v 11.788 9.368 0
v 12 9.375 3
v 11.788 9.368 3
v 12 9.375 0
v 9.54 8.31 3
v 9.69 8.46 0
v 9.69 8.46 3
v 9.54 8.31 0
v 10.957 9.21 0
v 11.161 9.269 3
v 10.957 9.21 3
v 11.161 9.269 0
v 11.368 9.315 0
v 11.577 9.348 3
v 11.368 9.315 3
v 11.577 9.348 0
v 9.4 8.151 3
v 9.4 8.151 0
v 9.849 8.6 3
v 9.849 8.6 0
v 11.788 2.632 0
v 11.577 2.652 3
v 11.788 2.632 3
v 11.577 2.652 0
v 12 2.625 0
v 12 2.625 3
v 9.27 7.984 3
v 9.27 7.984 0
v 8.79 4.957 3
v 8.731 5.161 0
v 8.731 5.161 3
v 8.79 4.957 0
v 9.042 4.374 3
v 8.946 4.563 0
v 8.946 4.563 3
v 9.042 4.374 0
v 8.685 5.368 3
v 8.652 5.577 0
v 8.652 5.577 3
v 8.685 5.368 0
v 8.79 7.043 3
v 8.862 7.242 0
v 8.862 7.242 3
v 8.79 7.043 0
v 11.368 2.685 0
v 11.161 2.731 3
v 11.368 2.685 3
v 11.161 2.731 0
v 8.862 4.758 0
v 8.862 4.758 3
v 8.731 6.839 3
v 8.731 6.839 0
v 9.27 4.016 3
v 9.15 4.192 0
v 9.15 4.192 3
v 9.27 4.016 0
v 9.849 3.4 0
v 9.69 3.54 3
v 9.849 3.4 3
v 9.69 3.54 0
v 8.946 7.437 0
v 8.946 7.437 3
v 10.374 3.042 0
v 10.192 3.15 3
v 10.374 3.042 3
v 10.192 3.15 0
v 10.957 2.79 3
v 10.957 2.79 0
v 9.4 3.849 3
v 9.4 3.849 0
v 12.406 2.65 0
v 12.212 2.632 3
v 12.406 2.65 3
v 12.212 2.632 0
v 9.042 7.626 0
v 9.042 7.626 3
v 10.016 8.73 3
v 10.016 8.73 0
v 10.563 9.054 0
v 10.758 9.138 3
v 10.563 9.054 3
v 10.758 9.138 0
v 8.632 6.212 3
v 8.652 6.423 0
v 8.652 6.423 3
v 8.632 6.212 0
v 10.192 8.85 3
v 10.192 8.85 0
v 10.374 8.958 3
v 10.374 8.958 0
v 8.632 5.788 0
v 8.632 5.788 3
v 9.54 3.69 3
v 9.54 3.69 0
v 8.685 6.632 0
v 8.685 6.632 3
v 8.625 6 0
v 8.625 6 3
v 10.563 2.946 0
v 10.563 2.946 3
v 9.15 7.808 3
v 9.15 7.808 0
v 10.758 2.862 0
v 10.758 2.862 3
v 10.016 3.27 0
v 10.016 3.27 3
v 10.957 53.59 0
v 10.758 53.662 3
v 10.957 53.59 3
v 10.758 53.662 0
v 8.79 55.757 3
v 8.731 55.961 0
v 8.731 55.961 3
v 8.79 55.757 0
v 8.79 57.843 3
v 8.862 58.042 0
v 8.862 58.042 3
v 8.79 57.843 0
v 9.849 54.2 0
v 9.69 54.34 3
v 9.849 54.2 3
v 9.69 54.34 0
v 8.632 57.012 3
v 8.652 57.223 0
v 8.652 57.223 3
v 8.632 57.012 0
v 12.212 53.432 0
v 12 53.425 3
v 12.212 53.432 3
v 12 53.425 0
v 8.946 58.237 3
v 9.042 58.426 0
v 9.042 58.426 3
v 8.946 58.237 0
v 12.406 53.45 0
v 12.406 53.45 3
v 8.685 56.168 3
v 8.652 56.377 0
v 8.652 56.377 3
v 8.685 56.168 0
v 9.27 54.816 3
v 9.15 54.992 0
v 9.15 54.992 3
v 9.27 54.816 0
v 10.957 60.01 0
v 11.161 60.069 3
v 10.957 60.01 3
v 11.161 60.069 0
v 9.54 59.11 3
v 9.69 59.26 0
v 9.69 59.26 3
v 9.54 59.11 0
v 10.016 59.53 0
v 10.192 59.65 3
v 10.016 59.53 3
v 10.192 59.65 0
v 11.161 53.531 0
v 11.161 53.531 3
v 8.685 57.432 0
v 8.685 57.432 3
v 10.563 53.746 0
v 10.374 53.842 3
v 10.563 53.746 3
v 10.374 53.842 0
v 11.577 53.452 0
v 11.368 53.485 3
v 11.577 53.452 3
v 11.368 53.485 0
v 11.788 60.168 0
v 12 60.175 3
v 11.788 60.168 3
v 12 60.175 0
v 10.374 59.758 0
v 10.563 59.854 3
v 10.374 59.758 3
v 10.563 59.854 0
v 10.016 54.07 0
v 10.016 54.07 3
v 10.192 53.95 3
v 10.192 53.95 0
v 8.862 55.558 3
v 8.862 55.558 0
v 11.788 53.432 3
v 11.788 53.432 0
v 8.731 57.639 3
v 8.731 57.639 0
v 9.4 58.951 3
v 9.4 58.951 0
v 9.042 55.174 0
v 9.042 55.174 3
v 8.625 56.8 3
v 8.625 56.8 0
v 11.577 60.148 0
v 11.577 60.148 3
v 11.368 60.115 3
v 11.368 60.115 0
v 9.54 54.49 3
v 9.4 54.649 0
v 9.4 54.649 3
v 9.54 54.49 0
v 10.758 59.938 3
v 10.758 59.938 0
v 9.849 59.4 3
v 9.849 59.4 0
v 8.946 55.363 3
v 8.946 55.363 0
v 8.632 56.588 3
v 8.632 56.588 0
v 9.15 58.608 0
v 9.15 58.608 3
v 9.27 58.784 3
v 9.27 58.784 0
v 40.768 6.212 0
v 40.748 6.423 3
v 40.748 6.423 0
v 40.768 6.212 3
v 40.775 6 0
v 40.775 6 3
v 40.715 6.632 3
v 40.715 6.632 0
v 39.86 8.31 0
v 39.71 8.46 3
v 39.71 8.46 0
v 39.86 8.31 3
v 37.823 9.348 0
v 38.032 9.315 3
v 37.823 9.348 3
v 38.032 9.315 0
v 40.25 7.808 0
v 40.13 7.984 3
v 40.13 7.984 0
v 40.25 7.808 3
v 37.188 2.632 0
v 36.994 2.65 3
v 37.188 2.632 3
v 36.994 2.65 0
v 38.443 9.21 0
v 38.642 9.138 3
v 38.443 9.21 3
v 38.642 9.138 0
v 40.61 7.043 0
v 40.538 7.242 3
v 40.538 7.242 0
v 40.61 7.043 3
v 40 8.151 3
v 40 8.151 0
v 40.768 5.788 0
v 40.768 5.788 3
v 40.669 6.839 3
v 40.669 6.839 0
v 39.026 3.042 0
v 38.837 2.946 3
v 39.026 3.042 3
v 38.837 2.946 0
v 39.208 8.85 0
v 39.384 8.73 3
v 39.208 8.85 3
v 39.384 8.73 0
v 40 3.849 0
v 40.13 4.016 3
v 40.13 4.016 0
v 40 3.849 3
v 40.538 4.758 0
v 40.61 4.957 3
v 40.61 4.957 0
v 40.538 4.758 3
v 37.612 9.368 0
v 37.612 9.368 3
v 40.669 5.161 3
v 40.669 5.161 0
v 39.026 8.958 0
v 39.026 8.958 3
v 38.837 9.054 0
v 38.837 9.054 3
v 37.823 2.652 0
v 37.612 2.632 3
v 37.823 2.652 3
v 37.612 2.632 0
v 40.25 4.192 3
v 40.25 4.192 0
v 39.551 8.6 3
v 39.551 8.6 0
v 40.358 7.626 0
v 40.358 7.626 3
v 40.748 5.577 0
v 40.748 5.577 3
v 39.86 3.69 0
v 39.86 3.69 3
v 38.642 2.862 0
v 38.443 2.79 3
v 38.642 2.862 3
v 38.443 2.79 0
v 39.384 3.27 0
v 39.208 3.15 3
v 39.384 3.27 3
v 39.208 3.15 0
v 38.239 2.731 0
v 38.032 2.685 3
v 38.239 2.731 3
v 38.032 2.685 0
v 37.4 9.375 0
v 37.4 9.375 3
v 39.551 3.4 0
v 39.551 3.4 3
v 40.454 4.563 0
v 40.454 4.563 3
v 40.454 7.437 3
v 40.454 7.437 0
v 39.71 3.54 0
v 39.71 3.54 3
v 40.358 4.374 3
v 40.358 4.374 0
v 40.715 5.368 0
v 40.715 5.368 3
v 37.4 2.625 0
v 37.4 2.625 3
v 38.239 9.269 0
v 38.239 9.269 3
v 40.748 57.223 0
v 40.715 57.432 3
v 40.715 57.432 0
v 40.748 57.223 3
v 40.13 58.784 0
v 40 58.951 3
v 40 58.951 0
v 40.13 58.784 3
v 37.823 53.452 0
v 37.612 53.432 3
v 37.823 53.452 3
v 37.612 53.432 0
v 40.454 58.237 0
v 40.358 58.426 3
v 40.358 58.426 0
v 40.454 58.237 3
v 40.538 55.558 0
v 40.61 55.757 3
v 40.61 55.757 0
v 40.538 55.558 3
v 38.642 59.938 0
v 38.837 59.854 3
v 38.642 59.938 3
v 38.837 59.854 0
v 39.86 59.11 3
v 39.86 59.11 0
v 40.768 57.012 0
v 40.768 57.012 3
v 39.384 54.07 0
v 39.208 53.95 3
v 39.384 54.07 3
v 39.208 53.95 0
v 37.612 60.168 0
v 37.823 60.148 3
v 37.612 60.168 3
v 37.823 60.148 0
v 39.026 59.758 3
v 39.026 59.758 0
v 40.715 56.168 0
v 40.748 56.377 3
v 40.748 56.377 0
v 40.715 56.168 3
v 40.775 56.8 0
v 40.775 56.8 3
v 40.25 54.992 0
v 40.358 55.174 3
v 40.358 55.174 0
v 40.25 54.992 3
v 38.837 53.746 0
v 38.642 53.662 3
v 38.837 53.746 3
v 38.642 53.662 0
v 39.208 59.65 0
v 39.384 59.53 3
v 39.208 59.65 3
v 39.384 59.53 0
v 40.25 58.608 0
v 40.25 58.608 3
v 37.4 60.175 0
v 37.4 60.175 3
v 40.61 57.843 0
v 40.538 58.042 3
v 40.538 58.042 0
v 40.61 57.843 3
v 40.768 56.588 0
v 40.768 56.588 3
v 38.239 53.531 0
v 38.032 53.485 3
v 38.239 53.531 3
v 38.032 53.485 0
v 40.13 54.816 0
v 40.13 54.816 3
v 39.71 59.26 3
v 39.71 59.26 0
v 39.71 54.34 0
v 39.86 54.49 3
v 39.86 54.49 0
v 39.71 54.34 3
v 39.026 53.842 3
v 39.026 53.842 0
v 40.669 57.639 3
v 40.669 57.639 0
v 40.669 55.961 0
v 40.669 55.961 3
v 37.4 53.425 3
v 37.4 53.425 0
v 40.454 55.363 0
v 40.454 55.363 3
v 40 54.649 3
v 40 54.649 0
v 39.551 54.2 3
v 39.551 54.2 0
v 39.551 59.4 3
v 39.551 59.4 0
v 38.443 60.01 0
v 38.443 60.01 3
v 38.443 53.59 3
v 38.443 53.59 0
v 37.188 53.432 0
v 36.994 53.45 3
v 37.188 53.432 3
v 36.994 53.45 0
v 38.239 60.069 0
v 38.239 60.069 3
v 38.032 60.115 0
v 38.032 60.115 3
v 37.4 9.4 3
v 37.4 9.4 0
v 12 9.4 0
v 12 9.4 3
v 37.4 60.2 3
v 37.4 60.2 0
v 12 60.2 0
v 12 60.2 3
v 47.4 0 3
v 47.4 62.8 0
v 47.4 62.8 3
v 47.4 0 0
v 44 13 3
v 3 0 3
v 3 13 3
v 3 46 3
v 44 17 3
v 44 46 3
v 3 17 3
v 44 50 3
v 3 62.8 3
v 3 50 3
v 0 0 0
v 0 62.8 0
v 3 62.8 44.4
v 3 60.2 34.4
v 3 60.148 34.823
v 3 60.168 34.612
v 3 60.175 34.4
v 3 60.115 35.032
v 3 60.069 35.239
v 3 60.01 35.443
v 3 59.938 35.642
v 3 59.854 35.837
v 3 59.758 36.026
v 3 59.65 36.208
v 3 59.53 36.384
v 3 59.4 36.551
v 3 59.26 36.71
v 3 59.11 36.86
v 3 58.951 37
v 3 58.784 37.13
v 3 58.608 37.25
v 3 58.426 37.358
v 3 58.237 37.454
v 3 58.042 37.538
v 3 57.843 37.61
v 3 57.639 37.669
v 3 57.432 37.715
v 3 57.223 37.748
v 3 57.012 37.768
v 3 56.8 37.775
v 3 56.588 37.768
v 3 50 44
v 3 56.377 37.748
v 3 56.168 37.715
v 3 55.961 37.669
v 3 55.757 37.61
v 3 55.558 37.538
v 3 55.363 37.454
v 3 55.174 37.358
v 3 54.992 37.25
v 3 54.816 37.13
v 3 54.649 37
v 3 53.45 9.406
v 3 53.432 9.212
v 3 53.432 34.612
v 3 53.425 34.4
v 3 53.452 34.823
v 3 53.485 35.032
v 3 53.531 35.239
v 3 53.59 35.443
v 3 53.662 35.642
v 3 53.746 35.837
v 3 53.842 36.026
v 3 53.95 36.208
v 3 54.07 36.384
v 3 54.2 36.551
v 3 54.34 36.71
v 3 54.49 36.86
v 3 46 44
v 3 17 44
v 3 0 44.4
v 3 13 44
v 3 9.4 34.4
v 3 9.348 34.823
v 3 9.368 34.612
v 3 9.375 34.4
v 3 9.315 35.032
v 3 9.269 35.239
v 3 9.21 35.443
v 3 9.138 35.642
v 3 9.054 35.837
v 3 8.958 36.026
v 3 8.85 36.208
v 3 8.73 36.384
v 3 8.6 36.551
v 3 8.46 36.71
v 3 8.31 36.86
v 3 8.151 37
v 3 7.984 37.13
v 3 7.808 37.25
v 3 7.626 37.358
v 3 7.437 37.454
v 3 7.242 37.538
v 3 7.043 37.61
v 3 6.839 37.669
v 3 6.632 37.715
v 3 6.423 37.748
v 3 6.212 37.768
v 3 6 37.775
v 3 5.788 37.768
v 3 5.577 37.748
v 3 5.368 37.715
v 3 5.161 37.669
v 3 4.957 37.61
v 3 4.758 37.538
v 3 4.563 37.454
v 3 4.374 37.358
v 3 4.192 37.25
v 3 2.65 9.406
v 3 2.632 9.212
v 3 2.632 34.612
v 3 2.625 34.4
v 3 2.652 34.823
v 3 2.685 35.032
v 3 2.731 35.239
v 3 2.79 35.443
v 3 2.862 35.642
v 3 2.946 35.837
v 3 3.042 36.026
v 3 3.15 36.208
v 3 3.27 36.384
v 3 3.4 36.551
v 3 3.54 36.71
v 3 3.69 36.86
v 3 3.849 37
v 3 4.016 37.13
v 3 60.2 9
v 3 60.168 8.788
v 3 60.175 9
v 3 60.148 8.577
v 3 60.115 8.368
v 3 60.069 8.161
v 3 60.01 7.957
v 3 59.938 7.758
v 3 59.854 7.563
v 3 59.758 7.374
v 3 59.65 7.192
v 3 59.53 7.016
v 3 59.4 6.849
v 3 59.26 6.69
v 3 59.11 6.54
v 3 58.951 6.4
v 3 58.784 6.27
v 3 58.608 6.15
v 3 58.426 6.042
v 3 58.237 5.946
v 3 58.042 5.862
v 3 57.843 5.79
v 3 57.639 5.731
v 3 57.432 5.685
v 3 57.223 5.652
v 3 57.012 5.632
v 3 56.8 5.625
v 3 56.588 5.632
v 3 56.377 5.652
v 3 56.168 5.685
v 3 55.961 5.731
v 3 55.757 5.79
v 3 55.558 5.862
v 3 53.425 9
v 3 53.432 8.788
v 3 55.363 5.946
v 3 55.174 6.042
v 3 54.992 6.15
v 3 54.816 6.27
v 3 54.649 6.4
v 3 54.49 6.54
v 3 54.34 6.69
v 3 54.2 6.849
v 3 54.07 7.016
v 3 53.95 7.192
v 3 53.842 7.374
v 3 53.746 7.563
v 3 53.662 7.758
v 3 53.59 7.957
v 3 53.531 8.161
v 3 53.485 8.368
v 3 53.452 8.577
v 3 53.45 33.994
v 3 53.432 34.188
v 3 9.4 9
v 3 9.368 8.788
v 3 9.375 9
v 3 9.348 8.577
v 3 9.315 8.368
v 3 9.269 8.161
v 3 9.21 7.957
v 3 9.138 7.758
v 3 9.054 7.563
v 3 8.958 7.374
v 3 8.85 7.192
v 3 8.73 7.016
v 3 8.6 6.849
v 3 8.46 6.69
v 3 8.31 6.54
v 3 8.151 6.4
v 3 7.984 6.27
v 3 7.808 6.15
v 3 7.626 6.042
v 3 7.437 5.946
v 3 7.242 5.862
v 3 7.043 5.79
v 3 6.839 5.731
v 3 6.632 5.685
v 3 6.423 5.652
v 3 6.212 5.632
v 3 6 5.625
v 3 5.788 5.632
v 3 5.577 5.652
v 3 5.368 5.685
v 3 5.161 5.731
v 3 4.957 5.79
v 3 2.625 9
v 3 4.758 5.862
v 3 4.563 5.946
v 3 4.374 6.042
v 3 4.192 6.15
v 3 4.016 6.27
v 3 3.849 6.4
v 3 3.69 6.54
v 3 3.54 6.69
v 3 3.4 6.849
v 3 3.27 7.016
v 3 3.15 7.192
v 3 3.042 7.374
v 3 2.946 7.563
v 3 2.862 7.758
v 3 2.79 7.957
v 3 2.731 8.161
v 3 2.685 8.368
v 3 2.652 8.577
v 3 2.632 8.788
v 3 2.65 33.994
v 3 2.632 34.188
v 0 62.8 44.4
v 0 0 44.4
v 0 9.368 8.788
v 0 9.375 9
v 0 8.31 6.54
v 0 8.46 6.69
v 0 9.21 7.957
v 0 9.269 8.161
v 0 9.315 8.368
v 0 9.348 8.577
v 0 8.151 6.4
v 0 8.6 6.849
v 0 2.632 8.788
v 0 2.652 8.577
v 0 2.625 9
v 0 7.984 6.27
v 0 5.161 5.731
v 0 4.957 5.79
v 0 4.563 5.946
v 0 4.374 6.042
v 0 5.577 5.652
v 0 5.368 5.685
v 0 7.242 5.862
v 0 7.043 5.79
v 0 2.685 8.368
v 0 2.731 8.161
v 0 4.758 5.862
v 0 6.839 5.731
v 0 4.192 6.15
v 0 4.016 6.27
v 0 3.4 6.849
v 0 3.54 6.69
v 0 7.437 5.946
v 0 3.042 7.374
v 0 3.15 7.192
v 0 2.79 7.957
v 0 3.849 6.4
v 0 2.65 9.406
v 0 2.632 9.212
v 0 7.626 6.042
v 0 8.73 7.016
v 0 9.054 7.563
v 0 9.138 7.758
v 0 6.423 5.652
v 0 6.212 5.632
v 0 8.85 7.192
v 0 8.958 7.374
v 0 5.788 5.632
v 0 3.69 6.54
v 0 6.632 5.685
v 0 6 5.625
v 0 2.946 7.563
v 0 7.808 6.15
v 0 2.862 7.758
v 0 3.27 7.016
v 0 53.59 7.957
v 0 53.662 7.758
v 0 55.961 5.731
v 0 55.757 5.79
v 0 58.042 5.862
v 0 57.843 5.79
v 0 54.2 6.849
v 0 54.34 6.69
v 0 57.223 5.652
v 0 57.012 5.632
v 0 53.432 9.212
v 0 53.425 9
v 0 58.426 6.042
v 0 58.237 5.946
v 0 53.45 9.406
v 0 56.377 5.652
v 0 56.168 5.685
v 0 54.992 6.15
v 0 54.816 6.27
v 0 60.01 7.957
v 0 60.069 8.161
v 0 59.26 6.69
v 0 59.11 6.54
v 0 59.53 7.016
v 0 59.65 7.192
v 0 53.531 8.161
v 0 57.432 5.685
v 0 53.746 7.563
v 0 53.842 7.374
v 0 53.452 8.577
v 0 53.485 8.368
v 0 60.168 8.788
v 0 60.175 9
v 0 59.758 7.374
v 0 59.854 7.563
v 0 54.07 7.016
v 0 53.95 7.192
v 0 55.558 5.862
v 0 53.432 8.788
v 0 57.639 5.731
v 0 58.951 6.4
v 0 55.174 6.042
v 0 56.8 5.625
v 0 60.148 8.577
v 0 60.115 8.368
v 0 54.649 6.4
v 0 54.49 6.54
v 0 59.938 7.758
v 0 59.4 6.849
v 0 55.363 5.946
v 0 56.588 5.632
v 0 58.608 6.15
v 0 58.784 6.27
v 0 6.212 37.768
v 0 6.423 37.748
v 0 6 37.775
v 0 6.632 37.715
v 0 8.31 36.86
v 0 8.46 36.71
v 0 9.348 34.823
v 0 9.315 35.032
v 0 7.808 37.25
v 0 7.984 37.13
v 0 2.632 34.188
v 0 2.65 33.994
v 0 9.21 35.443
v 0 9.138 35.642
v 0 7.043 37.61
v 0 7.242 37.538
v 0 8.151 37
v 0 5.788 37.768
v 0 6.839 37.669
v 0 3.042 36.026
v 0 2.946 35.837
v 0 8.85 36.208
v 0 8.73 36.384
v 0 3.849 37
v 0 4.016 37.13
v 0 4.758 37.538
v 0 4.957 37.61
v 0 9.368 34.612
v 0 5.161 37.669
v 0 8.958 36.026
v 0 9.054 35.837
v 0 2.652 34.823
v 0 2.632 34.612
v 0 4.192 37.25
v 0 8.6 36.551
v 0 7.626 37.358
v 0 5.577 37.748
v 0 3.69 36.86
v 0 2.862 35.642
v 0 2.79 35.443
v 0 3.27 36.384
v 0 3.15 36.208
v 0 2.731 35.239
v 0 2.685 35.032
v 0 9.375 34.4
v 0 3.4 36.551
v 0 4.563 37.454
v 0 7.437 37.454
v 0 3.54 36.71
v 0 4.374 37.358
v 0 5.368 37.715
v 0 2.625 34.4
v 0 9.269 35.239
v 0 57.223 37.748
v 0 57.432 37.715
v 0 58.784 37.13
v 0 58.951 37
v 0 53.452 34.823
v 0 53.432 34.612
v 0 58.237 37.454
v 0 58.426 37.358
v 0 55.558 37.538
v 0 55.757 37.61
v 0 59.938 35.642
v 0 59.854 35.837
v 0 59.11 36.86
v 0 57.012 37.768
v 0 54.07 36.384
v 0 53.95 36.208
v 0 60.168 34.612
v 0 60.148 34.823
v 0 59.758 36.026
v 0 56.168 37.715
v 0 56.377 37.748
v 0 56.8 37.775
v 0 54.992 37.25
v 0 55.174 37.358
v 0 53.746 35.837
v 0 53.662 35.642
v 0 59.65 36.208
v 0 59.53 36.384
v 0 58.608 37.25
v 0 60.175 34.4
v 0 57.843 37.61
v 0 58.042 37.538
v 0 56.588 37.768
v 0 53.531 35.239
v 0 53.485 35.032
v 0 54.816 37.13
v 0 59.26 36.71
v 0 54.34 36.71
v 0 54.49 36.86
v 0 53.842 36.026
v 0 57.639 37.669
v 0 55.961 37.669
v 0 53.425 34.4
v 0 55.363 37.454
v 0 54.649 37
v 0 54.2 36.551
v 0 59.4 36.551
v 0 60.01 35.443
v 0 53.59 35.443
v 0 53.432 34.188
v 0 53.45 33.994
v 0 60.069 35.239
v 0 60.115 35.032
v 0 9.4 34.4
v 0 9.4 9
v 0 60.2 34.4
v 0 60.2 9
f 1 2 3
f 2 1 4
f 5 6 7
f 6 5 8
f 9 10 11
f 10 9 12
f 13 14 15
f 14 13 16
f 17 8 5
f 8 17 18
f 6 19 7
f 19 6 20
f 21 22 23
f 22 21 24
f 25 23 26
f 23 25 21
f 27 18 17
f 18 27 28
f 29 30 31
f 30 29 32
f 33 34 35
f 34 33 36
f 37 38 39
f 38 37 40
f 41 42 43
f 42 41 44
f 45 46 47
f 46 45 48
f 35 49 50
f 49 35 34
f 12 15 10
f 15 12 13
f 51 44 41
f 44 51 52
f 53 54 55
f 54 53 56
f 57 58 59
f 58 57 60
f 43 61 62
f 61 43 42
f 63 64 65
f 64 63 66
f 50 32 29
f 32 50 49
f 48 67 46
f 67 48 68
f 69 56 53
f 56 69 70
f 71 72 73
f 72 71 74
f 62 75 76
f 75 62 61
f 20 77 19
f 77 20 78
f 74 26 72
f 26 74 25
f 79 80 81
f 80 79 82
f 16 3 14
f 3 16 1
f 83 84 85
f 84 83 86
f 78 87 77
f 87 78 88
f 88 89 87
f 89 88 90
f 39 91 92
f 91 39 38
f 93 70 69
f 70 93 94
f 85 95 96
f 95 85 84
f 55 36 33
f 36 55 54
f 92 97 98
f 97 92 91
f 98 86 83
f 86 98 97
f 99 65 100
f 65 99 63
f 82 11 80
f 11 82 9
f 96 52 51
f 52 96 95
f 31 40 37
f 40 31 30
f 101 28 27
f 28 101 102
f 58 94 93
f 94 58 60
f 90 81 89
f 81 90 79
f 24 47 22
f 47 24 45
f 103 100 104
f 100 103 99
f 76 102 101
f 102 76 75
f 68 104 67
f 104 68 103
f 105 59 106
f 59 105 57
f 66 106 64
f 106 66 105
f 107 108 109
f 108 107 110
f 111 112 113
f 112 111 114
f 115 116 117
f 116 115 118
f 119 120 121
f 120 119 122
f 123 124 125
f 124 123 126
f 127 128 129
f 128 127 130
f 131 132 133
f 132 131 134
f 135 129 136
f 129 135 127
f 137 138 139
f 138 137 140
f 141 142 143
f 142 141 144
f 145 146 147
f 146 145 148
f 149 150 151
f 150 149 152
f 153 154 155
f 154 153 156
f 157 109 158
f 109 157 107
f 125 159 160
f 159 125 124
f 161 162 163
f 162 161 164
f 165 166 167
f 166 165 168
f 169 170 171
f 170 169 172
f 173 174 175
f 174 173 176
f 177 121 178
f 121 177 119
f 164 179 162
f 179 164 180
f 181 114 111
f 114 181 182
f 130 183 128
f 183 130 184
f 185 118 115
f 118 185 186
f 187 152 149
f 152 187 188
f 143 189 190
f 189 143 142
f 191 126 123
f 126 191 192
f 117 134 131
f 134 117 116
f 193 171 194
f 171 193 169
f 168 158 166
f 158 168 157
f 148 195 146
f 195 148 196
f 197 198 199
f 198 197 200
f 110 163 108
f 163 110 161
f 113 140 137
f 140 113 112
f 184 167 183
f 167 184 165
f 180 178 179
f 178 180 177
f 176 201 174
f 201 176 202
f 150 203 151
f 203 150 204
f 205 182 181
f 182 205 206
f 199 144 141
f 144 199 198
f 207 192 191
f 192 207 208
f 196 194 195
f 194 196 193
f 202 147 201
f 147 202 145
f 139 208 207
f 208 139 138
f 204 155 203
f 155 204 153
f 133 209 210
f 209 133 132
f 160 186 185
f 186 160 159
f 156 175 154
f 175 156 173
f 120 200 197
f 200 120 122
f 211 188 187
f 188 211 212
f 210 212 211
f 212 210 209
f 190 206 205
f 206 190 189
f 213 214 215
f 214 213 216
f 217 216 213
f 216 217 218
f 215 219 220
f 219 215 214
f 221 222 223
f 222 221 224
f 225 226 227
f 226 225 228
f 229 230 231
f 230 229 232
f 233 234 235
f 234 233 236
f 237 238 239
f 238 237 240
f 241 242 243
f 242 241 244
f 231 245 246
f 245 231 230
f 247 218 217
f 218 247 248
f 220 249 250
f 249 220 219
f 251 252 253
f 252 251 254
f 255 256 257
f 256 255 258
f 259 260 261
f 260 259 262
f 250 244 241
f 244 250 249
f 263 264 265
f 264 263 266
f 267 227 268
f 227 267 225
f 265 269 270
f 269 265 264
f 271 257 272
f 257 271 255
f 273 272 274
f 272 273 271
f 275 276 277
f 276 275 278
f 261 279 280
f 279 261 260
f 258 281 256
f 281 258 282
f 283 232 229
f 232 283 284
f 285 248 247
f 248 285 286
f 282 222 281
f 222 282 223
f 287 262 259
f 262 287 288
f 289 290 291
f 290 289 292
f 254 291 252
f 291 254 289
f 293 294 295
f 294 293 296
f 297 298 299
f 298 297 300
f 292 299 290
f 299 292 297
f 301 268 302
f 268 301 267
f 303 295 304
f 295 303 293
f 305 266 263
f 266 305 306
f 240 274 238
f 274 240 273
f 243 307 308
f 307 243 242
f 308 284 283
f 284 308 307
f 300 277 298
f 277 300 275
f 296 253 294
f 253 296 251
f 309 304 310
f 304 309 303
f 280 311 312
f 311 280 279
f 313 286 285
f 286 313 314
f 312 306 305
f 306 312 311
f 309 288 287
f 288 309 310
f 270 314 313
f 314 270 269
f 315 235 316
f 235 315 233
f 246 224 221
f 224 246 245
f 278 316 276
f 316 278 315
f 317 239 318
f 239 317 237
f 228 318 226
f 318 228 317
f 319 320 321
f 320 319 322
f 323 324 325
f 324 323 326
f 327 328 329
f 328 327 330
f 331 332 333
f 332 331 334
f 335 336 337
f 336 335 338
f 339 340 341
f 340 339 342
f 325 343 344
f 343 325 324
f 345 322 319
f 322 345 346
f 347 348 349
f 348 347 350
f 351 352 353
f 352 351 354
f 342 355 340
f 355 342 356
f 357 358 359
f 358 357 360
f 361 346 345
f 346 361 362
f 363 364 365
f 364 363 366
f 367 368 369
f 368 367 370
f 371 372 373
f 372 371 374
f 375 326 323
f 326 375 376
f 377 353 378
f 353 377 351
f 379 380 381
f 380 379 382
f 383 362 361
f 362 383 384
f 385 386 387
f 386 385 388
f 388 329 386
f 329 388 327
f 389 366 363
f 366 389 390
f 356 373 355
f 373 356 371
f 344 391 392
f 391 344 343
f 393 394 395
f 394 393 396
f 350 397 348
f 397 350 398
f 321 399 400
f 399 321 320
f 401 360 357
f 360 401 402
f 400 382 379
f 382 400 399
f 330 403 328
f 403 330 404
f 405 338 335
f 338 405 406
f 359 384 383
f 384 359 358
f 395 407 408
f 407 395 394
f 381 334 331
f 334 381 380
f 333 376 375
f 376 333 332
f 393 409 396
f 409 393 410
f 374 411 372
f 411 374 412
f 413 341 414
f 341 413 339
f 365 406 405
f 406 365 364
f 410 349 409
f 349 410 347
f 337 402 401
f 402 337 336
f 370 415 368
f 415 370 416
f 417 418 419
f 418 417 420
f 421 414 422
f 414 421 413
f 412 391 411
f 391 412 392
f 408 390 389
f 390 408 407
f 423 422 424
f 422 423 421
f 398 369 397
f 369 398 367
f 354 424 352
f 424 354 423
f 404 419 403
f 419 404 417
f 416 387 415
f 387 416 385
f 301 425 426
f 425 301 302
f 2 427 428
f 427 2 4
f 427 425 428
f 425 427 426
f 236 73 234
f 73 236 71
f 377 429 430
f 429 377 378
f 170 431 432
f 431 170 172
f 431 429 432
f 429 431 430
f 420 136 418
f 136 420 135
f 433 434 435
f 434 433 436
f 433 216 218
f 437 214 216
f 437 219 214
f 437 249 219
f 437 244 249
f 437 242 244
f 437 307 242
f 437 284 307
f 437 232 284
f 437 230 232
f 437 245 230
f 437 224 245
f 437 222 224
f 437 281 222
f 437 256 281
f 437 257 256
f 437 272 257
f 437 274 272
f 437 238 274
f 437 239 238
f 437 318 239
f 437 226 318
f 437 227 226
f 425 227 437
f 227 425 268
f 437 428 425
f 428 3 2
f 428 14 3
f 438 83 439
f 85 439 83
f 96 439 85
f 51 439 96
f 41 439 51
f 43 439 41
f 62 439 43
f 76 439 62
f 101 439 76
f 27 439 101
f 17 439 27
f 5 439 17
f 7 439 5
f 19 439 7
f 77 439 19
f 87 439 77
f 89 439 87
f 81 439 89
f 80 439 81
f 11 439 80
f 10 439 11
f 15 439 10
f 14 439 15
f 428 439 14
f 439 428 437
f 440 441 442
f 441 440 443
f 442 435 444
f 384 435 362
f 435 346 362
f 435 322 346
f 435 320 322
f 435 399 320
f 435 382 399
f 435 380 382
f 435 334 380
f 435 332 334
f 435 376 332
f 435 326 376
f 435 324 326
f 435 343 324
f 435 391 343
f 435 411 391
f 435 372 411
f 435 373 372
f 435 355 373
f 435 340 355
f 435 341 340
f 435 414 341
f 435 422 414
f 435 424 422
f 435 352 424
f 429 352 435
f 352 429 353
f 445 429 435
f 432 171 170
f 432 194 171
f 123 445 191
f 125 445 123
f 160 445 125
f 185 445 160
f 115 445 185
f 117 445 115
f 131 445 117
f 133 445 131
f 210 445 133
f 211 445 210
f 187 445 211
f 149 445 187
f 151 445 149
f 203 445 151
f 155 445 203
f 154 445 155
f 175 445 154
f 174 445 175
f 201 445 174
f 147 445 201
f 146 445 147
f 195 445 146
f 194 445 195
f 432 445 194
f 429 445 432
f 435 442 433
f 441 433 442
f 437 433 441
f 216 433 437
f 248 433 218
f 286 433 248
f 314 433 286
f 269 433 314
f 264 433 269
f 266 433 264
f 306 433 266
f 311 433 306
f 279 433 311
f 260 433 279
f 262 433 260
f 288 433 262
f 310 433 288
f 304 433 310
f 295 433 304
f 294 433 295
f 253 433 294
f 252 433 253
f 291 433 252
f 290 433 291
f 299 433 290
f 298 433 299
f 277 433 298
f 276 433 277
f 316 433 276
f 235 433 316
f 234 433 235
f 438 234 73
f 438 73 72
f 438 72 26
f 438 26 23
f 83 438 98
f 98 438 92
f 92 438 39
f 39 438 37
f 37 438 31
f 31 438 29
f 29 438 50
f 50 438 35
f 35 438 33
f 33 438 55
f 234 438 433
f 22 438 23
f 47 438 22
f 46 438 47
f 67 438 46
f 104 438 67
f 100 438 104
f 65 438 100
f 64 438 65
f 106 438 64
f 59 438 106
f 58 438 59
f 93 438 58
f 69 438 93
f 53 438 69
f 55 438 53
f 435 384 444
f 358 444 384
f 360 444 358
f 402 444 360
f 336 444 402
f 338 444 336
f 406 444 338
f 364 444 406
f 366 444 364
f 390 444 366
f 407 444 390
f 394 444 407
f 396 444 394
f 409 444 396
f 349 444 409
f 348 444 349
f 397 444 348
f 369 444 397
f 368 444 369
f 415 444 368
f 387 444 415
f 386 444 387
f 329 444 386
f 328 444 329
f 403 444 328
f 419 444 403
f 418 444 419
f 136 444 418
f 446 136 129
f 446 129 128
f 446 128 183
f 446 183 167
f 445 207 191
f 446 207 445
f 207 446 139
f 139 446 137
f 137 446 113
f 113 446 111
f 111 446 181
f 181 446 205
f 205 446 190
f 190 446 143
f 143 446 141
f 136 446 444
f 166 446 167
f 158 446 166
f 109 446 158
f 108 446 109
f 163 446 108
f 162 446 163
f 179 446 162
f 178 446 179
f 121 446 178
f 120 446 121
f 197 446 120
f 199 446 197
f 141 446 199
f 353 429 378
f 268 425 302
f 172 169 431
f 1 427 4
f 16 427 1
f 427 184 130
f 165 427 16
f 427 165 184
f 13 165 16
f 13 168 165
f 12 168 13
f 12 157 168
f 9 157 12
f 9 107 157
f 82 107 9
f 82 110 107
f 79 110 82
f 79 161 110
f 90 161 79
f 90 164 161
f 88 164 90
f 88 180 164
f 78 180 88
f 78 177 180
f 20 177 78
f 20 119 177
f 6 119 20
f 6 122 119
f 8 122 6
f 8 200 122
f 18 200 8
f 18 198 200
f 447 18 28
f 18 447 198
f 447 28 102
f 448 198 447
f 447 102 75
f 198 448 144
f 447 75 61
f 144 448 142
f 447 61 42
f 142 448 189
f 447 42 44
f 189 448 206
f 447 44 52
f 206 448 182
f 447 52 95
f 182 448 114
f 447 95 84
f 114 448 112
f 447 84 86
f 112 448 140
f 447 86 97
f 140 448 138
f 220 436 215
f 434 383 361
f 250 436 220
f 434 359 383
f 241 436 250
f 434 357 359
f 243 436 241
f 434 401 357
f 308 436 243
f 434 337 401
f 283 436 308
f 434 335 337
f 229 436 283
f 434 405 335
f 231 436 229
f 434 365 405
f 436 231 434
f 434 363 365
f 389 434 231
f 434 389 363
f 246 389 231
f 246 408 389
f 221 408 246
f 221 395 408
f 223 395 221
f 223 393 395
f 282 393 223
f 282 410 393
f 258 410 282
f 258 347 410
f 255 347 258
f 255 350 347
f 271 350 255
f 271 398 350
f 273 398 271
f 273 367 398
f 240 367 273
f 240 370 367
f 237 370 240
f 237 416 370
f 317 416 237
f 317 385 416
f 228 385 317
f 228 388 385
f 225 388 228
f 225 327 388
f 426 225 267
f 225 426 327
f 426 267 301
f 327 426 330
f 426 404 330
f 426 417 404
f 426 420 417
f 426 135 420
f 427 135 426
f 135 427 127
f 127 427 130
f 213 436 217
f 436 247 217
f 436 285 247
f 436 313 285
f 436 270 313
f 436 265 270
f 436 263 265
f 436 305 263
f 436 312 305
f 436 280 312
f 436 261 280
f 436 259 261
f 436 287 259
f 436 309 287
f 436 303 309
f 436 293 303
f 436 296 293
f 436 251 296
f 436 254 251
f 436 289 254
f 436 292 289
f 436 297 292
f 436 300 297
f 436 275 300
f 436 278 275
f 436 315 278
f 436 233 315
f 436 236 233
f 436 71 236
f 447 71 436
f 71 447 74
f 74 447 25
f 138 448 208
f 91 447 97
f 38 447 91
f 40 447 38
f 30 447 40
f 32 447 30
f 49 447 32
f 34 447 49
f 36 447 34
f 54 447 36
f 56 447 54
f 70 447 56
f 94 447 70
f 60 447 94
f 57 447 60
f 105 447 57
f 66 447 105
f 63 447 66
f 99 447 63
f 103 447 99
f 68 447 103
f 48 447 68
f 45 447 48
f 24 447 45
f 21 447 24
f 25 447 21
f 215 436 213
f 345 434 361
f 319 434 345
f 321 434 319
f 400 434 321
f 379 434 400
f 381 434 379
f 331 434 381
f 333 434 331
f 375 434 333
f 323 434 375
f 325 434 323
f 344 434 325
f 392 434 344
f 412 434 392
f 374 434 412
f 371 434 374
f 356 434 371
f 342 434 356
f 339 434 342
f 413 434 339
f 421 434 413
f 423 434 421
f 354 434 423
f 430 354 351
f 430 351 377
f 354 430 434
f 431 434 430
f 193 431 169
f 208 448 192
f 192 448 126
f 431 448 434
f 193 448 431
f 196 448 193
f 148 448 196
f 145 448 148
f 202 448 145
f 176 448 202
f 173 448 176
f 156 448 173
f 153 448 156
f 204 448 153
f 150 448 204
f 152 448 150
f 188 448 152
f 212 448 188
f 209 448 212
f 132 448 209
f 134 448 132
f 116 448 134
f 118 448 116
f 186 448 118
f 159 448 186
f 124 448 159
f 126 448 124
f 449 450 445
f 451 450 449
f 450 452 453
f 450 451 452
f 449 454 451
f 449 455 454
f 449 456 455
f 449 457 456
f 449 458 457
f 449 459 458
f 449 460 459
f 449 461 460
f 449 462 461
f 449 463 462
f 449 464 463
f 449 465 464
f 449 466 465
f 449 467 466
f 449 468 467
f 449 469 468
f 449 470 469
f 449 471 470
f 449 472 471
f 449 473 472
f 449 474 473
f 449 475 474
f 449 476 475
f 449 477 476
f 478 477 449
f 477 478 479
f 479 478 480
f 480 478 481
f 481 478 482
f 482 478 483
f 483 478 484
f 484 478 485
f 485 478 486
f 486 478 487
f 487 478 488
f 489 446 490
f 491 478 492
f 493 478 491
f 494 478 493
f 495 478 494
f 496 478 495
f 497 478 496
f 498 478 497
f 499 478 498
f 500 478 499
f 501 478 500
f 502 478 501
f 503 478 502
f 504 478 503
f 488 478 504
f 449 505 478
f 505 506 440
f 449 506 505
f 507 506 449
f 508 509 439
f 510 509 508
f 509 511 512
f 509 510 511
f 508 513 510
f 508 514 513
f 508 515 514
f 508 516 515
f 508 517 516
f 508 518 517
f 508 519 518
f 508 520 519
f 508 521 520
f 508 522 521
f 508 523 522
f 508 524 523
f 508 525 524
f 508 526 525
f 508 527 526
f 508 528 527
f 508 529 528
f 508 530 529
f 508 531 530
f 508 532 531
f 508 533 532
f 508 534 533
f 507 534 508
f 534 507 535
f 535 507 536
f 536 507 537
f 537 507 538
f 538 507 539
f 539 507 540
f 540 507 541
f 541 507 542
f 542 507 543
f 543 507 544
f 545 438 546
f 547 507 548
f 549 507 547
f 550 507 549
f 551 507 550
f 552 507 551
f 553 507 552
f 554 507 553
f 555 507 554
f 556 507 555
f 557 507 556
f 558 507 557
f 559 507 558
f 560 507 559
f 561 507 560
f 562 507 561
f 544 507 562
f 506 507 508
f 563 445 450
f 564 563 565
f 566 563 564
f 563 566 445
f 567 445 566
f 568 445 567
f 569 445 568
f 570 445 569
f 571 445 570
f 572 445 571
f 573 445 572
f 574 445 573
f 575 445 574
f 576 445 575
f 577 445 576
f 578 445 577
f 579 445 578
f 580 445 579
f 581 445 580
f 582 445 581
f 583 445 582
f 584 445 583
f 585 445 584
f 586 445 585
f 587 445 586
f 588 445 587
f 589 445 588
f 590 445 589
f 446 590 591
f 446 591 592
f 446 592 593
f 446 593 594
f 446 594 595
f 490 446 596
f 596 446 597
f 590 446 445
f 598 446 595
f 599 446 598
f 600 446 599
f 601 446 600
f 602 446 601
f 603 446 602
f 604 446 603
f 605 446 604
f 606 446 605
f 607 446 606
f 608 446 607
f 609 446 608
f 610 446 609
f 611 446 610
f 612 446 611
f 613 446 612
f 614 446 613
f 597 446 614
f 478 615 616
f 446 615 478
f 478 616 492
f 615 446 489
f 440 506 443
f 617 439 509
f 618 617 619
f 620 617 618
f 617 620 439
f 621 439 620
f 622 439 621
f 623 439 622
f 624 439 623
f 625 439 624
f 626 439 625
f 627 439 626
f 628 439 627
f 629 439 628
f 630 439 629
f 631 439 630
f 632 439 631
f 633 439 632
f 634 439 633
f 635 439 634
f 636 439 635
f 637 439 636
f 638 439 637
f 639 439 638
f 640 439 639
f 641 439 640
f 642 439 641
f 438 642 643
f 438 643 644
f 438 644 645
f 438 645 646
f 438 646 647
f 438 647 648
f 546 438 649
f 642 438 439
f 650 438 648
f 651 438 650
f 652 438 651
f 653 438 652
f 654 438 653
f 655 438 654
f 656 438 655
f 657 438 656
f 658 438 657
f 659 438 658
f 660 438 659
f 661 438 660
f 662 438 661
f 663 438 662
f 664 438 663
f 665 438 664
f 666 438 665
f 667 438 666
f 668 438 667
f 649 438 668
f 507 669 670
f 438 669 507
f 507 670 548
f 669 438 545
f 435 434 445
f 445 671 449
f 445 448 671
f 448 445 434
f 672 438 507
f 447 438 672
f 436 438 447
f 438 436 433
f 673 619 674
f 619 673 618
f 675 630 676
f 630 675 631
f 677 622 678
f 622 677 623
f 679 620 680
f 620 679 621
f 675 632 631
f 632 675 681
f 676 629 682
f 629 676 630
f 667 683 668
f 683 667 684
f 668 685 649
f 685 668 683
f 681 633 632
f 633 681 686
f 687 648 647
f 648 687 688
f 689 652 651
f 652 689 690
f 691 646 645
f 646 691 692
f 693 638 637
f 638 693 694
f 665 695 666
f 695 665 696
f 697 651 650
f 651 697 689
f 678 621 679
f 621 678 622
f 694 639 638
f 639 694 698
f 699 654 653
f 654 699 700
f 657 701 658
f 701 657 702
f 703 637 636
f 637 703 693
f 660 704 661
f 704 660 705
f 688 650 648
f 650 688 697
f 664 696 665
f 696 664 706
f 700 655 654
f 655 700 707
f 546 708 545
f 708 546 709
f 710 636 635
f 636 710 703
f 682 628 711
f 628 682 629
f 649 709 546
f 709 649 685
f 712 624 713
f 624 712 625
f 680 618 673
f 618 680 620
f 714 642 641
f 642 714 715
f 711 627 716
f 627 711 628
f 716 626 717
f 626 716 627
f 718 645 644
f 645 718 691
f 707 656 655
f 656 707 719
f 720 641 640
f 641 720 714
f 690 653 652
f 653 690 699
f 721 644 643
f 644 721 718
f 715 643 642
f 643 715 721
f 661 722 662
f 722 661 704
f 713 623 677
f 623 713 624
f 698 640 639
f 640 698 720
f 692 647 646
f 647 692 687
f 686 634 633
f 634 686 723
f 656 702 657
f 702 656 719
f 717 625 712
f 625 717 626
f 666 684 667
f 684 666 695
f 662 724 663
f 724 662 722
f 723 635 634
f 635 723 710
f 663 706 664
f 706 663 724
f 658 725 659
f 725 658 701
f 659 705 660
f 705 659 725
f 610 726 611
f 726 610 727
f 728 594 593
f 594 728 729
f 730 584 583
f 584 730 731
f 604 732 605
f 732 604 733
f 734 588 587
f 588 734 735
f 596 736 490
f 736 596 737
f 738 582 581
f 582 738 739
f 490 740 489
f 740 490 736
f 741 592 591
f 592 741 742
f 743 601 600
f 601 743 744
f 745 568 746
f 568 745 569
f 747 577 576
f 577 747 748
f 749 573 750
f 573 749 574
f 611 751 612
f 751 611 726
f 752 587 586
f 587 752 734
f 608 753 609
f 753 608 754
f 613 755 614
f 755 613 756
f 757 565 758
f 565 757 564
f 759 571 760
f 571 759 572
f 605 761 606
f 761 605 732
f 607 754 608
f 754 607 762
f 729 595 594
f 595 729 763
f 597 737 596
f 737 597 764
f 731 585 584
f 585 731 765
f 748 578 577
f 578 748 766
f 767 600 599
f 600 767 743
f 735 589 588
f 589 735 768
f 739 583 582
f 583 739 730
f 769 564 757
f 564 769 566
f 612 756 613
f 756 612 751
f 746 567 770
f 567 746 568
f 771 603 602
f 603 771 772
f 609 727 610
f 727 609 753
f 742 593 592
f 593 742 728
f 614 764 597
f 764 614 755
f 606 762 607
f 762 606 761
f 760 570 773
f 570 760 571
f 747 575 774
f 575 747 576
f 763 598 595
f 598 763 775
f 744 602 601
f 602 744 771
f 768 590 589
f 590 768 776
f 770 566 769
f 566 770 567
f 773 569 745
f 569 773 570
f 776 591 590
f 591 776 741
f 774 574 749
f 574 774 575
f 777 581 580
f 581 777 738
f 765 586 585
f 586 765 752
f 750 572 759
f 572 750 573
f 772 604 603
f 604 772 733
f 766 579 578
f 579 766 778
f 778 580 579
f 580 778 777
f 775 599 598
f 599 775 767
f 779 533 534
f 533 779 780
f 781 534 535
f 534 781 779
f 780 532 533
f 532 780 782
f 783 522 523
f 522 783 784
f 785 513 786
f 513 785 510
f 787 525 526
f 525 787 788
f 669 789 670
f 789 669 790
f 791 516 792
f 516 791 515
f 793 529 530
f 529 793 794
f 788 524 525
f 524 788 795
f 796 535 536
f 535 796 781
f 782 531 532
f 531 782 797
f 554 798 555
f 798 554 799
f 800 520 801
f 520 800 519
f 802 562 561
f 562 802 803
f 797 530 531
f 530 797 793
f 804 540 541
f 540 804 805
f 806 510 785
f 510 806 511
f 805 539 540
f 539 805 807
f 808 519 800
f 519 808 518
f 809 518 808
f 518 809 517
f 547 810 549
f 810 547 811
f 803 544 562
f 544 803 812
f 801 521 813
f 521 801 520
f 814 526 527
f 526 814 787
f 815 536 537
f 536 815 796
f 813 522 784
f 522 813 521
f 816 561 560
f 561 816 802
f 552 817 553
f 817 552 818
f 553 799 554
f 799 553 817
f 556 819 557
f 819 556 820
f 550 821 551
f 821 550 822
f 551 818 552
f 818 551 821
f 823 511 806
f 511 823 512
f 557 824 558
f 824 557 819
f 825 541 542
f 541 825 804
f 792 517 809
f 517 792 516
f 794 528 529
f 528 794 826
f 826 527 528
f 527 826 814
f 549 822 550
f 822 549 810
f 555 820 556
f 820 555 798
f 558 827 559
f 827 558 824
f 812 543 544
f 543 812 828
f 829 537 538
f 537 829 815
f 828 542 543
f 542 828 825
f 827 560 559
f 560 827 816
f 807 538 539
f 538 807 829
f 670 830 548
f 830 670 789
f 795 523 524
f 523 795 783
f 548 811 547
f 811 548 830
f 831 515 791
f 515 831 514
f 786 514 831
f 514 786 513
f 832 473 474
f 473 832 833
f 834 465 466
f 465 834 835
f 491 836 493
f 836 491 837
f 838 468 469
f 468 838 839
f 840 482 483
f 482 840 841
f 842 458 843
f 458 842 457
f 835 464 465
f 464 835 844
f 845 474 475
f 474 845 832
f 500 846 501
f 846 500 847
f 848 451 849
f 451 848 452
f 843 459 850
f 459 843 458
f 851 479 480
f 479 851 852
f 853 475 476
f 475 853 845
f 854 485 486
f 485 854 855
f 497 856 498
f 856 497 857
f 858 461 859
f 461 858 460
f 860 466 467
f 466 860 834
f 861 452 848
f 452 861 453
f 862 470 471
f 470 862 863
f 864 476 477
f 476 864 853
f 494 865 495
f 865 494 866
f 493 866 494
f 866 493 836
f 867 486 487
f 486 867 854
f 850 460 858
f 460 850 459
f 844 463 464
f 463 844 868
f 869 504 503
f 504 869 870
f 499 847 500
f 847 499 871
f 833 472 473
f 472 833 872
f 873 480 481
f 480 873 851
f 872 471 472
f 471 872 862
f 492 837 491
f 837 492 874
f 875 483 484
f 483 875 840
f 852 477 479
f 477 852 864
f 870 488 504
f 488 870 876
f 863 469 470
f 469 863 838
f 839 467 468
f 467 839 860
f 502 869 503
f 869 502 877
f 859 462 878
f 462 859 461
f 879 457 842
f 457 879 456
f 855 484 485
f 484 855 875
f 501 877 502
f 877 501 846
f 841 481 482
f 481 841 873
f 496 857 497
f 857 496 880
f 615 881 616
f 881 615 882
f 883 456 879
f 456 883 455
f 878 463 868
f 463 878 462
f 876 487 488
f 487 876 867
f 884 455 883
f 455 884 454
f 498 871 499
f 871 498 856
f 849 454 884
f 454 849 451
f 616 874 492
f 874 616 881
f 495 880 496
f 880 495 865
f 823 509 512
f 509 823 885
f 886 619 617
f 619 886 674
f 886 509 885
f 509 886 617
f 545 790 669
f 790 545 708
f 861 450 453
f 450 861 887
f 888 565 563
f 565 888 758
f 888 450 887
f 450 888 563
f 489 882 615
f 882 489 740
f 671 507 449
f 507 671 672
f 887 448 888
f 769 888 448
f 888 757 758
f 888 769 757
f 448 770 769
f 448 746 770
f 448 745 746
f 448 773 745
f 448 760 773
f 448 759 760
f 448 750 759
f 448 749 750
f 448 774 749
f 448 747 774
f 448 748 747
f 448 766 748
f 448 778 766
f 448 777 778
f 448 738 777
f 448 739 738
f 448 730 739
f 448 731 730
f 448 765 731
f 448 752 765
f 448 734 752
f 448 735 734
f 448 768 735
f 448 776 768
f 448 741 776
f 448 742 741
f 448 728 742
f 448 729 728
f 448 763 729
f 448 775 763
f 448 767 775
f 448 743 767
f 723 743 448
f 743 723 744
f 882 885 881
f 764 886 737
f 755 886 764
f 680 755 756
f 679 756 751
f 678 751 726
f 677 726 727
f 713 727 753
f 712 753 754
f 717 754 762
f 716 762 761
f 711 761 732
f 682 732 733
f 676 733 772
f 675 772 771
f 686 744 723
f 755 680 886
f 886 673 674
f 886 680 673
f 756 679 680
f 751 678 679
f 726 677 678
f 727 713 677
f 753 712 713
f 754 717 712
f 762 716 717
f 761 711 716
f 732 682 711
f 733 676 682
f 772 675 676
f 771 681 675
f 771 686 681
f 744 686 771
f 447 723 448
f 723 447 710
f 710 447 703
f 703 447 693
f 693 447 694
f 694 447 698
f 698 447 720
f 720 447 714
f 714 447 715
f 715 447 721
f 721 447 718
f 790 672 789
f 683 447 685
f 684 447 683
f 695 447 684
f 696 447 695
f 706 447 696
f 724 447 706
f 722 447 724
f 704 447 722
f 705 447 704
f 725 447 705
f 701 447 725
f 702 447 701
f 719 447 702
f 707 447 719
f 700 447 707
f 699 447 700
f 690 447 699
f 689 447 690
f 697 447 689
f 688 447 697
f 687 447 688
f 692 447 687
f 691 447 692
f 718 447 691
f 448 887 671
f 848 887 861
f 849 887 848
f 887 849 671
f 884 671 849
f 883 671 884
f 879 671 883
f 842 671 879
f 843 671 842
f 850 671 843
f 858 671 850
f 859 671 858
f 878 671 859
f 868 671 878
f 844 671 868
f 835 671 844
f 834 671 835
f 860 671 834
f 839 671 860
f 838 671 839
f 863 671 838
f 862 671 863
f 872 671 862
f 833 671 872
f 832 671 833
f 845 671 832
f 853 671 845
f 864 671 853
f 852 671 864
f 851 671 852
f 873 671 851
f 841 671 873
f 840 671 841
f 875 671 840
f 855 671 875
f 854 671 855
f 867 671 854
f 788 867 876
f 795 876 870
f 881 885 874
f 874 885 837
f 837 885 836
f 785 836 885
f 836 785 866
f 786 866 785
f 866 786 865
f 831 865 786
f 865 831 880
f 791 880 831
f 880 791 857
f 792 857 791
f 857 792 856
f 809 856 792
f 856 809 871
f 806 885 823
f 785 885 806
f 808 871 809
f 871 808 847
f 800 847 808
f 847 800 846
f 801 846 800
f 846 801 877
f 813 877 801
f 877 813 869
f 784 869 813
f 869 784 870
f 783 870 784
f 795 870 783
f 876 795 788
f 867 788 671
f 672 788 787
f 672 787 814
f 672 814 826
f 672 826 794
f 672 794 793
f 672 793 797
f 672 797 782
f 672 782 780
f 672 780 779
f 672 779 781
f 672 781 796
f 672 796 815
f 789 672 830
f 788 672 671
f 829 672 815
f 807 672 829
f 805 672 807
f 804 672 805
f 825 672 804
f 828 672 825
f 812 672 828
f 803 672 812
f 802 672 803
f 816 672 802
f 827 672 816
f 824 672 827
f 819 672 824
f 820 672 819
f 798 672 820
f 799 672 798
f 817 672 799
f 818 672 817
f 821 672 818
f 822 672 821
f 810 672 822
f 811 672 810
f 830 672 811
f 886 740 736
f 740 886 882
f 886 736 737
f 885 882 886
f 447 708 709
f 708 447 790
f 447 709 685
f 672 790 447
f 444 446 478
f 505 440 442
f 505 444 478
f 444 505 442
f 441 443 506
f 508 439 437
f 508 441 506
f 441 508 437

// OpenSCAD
$fn = 100;

module slotted_base() {
    module platform () {
        translate([-3,0,0]){
            cube([19+25.4,62.8,3]);
        }
//        translate([-3,12,2]){
//            cube([19+25.4,62.8-24,3]);
//        }
    }
    
    module holes() {
        translate([6,6,-0.5]) {
            cylinder(d=6.75,h=4);}
        translate([6,50.8+6,-0.5]) {
            cylinder(d=6.75,h=4);}
        translate([6+25.4,6,-0.5]) {
            cylinder(d=6.75,h=4);}
        translate([6+25.4,50.8+6,-0.5]) {
            cylinder(d=6.75,h=4);}
        translate([6,2.65,-0.5]) {
                cube([25.4,6.75,4]); }
        translate([6,2.65+50.8,-0.5]) {
                cube([25.4,6.75,4]); }
        }
    
    difference() {
        platform();
        holes();
    }
}

translate([6,0,0]) {
    slotted_base();
}
rotate([0,-90,0]) {
    translate([3,0,-3]) {
        slotted_base();
    }
}
module brace() {
    difference() {
        translate([0,0,0]) {
            cube([44,4,44]);
        }
        translate([2,-1,45]) {
            rotate([0,45,0]) {
                cube([60,6,60]);
            }
        }
    }
}
translate([0,46,0]) {
brace();
}
translate([0,13,0]) {
brace();
}

        
